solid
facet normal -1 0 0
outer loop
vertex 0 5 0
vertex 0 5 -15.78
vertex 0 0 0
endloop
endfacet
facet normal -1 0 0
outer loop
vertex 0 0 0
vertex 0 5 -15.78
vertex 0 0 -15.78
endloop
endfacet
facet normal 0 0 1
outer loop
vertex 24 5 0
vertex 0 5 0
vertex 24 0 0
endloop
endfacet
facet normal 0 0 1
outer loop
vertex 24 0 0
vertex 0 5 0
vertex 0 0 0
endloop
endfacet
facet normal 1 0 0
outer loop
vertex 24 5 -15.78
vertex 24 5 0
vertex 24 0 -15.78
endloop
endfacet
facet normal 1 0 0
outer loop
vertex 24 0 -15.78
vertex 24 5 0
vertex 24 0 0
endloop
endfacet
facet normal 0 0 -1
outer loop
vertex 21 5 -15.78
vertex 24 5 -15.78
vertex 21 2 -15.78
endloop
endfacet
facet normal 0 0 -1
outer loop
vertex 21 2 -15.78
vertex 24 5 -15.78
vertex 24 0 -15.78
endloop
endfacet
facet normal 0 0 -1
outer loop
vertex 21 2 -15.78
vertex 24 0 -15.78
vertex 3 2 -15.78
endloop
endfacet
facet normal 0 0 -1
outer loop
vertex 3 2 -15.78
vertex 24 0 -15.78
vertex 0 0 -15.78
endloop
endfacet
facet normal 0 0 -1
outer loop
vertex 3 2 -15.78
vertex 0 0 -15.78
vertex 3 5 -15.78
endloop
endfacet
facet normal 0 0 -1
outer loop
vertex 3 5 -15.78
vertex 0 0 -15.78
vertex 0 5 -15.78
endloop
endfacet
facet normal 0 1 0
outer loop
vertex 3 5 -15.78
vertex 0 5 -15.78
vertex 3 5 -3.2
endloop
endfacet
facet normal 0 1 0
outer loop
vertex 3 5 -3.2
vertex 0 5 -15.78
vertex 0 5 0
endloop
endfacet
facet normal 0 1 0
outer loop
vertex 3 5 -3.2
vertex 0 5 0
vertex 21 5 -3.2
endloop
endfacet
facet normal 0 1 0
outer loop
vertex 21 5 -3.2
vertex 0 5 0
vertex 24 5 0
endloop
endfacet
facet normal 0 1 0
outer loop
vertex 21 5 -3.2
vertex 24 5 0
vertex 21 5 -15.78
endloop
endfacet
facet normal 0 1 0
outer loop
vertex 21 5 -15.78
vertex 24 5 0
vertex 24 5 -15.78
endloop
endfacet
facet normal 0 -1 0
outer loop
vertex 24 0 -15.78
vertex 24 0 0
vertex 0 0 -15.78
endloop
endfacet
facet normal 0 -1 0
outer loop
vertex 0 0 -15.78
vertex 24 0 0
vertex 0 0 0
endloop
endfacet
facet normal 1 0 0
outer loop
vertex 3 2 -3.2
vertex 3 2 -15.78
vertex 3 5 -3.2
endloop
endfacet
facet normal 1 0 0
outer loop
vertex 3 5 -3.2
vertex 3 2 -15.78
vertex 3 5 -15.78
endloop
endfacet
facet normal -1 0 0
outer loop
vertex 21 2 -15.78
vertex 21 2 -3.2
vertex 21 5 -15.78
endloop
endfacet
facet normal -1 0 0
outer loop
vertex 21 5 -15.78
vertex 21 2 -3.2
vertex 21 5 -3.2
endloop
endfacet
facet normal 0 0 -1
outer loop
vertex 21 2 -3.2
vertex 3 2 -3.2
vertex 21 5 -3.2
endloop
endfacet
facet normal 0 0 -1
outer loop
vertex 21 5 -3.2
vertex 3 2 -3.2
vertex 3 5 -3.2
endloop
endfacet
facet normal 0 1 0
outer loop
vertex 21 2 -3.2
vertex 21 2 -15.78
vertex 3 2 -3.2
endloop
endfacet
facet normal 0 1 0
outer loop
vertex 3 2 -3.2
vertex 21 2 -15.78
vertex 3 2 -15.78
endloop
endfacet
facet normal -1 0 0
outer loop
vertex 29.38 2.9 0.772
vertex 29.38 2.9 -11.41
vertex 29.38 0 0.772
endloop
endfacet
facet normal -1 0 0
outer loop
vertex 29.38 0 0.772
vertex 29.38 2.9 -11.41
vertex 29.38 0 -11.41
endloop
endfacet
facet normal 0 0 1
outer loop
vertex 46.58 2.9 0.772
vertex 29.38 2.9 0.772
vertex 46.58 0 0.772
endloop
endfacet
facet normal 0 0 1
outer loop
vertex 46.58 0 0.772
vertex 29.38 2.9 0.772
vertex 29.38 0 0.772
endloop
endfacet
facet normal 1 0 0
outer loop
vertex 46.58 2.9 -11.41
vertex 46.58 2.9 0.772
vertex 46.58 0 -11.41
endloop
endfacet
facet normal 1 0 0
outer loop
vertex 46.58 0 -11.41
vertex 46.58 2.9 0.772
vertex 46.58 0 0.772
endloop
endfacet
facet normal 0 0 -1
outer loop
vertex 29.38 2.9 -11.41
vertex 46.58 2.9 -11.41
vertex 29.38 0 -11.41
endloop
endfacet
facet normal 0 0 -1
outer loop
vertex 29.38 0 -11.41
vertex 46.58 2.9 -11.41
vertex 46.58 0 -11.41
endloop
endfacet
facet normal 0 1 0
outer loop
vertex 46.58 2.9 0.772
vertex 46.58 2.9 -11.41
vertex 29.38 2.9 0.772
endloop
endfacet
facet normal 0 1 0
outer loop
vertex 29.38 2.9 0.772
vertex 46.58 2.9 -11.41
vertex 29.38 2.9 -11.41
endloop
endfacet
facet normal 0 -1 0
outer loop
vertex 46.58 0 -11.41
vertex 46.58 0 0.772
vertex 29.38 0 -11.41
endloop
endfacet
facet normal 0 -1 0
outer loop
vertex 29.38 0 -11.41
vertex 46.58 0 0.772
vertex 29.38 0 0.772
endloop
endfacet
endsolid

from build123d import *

# Parameters (mm, degrees)
SKETCH1_W           = 24
SKETCH1_H           = 15.78
BOSS_EXTRUDE1_DEPTH = 5
SKETCH2_W           = 18
SKETCH2_H           = 12.58
CUT_EXTRUDE1_DEPTH  = 3
SKETCH3_W           = 17.2
SKETCH3_H           = 12.182
BOSS_EXTRUDE2_DEPTH = 2.9


with BuildPart() as part:
    # Sketch1 → Boss-Extrude1 (new body)
    with BuildSketch(Plane(origin=(0, 0, 0), x_dir=(1, 0, 0), z_dir=(0, 1, 0))):
        with Locations((12, 7.89)):
            Rectangle(SKETCH1_W, SKETCH1_H)
    extrude(amount=BOSS_EXTRUDE1_DEPTH)

    # Sketch2 → Cut-Extrude1 (cut)
    with BuildSketch(Plane(origin=(0, 5, 0), x_dir=(1, 0, 0), z_dir=(0, 1, 0))):
        with Locations((12, 9.49)):
            Rectangle(SKETCH2_W, SKETCH2_H)
    extrude(amount=-CUT_EXTRUDE1_DEPTH, mode=Mode.SUBTRACT)


with BuildPart() as body_2:
    # Sketch3 → Boss-Extrude2 (new body)
    with BuildSketch(Plane(origin=(0, 0, 0), x_dir=(1, 0, 0), z_dir=(0, 1, 0))):
        with Locations((37.979647852, 5.318516785)):
            Rectangle(SKETCH3_W, SKETCH3_H)
    extrude(amount=BOSS_EXTRUDE2_DEPTH)


solid = Compound([part.part, body_2.part])
